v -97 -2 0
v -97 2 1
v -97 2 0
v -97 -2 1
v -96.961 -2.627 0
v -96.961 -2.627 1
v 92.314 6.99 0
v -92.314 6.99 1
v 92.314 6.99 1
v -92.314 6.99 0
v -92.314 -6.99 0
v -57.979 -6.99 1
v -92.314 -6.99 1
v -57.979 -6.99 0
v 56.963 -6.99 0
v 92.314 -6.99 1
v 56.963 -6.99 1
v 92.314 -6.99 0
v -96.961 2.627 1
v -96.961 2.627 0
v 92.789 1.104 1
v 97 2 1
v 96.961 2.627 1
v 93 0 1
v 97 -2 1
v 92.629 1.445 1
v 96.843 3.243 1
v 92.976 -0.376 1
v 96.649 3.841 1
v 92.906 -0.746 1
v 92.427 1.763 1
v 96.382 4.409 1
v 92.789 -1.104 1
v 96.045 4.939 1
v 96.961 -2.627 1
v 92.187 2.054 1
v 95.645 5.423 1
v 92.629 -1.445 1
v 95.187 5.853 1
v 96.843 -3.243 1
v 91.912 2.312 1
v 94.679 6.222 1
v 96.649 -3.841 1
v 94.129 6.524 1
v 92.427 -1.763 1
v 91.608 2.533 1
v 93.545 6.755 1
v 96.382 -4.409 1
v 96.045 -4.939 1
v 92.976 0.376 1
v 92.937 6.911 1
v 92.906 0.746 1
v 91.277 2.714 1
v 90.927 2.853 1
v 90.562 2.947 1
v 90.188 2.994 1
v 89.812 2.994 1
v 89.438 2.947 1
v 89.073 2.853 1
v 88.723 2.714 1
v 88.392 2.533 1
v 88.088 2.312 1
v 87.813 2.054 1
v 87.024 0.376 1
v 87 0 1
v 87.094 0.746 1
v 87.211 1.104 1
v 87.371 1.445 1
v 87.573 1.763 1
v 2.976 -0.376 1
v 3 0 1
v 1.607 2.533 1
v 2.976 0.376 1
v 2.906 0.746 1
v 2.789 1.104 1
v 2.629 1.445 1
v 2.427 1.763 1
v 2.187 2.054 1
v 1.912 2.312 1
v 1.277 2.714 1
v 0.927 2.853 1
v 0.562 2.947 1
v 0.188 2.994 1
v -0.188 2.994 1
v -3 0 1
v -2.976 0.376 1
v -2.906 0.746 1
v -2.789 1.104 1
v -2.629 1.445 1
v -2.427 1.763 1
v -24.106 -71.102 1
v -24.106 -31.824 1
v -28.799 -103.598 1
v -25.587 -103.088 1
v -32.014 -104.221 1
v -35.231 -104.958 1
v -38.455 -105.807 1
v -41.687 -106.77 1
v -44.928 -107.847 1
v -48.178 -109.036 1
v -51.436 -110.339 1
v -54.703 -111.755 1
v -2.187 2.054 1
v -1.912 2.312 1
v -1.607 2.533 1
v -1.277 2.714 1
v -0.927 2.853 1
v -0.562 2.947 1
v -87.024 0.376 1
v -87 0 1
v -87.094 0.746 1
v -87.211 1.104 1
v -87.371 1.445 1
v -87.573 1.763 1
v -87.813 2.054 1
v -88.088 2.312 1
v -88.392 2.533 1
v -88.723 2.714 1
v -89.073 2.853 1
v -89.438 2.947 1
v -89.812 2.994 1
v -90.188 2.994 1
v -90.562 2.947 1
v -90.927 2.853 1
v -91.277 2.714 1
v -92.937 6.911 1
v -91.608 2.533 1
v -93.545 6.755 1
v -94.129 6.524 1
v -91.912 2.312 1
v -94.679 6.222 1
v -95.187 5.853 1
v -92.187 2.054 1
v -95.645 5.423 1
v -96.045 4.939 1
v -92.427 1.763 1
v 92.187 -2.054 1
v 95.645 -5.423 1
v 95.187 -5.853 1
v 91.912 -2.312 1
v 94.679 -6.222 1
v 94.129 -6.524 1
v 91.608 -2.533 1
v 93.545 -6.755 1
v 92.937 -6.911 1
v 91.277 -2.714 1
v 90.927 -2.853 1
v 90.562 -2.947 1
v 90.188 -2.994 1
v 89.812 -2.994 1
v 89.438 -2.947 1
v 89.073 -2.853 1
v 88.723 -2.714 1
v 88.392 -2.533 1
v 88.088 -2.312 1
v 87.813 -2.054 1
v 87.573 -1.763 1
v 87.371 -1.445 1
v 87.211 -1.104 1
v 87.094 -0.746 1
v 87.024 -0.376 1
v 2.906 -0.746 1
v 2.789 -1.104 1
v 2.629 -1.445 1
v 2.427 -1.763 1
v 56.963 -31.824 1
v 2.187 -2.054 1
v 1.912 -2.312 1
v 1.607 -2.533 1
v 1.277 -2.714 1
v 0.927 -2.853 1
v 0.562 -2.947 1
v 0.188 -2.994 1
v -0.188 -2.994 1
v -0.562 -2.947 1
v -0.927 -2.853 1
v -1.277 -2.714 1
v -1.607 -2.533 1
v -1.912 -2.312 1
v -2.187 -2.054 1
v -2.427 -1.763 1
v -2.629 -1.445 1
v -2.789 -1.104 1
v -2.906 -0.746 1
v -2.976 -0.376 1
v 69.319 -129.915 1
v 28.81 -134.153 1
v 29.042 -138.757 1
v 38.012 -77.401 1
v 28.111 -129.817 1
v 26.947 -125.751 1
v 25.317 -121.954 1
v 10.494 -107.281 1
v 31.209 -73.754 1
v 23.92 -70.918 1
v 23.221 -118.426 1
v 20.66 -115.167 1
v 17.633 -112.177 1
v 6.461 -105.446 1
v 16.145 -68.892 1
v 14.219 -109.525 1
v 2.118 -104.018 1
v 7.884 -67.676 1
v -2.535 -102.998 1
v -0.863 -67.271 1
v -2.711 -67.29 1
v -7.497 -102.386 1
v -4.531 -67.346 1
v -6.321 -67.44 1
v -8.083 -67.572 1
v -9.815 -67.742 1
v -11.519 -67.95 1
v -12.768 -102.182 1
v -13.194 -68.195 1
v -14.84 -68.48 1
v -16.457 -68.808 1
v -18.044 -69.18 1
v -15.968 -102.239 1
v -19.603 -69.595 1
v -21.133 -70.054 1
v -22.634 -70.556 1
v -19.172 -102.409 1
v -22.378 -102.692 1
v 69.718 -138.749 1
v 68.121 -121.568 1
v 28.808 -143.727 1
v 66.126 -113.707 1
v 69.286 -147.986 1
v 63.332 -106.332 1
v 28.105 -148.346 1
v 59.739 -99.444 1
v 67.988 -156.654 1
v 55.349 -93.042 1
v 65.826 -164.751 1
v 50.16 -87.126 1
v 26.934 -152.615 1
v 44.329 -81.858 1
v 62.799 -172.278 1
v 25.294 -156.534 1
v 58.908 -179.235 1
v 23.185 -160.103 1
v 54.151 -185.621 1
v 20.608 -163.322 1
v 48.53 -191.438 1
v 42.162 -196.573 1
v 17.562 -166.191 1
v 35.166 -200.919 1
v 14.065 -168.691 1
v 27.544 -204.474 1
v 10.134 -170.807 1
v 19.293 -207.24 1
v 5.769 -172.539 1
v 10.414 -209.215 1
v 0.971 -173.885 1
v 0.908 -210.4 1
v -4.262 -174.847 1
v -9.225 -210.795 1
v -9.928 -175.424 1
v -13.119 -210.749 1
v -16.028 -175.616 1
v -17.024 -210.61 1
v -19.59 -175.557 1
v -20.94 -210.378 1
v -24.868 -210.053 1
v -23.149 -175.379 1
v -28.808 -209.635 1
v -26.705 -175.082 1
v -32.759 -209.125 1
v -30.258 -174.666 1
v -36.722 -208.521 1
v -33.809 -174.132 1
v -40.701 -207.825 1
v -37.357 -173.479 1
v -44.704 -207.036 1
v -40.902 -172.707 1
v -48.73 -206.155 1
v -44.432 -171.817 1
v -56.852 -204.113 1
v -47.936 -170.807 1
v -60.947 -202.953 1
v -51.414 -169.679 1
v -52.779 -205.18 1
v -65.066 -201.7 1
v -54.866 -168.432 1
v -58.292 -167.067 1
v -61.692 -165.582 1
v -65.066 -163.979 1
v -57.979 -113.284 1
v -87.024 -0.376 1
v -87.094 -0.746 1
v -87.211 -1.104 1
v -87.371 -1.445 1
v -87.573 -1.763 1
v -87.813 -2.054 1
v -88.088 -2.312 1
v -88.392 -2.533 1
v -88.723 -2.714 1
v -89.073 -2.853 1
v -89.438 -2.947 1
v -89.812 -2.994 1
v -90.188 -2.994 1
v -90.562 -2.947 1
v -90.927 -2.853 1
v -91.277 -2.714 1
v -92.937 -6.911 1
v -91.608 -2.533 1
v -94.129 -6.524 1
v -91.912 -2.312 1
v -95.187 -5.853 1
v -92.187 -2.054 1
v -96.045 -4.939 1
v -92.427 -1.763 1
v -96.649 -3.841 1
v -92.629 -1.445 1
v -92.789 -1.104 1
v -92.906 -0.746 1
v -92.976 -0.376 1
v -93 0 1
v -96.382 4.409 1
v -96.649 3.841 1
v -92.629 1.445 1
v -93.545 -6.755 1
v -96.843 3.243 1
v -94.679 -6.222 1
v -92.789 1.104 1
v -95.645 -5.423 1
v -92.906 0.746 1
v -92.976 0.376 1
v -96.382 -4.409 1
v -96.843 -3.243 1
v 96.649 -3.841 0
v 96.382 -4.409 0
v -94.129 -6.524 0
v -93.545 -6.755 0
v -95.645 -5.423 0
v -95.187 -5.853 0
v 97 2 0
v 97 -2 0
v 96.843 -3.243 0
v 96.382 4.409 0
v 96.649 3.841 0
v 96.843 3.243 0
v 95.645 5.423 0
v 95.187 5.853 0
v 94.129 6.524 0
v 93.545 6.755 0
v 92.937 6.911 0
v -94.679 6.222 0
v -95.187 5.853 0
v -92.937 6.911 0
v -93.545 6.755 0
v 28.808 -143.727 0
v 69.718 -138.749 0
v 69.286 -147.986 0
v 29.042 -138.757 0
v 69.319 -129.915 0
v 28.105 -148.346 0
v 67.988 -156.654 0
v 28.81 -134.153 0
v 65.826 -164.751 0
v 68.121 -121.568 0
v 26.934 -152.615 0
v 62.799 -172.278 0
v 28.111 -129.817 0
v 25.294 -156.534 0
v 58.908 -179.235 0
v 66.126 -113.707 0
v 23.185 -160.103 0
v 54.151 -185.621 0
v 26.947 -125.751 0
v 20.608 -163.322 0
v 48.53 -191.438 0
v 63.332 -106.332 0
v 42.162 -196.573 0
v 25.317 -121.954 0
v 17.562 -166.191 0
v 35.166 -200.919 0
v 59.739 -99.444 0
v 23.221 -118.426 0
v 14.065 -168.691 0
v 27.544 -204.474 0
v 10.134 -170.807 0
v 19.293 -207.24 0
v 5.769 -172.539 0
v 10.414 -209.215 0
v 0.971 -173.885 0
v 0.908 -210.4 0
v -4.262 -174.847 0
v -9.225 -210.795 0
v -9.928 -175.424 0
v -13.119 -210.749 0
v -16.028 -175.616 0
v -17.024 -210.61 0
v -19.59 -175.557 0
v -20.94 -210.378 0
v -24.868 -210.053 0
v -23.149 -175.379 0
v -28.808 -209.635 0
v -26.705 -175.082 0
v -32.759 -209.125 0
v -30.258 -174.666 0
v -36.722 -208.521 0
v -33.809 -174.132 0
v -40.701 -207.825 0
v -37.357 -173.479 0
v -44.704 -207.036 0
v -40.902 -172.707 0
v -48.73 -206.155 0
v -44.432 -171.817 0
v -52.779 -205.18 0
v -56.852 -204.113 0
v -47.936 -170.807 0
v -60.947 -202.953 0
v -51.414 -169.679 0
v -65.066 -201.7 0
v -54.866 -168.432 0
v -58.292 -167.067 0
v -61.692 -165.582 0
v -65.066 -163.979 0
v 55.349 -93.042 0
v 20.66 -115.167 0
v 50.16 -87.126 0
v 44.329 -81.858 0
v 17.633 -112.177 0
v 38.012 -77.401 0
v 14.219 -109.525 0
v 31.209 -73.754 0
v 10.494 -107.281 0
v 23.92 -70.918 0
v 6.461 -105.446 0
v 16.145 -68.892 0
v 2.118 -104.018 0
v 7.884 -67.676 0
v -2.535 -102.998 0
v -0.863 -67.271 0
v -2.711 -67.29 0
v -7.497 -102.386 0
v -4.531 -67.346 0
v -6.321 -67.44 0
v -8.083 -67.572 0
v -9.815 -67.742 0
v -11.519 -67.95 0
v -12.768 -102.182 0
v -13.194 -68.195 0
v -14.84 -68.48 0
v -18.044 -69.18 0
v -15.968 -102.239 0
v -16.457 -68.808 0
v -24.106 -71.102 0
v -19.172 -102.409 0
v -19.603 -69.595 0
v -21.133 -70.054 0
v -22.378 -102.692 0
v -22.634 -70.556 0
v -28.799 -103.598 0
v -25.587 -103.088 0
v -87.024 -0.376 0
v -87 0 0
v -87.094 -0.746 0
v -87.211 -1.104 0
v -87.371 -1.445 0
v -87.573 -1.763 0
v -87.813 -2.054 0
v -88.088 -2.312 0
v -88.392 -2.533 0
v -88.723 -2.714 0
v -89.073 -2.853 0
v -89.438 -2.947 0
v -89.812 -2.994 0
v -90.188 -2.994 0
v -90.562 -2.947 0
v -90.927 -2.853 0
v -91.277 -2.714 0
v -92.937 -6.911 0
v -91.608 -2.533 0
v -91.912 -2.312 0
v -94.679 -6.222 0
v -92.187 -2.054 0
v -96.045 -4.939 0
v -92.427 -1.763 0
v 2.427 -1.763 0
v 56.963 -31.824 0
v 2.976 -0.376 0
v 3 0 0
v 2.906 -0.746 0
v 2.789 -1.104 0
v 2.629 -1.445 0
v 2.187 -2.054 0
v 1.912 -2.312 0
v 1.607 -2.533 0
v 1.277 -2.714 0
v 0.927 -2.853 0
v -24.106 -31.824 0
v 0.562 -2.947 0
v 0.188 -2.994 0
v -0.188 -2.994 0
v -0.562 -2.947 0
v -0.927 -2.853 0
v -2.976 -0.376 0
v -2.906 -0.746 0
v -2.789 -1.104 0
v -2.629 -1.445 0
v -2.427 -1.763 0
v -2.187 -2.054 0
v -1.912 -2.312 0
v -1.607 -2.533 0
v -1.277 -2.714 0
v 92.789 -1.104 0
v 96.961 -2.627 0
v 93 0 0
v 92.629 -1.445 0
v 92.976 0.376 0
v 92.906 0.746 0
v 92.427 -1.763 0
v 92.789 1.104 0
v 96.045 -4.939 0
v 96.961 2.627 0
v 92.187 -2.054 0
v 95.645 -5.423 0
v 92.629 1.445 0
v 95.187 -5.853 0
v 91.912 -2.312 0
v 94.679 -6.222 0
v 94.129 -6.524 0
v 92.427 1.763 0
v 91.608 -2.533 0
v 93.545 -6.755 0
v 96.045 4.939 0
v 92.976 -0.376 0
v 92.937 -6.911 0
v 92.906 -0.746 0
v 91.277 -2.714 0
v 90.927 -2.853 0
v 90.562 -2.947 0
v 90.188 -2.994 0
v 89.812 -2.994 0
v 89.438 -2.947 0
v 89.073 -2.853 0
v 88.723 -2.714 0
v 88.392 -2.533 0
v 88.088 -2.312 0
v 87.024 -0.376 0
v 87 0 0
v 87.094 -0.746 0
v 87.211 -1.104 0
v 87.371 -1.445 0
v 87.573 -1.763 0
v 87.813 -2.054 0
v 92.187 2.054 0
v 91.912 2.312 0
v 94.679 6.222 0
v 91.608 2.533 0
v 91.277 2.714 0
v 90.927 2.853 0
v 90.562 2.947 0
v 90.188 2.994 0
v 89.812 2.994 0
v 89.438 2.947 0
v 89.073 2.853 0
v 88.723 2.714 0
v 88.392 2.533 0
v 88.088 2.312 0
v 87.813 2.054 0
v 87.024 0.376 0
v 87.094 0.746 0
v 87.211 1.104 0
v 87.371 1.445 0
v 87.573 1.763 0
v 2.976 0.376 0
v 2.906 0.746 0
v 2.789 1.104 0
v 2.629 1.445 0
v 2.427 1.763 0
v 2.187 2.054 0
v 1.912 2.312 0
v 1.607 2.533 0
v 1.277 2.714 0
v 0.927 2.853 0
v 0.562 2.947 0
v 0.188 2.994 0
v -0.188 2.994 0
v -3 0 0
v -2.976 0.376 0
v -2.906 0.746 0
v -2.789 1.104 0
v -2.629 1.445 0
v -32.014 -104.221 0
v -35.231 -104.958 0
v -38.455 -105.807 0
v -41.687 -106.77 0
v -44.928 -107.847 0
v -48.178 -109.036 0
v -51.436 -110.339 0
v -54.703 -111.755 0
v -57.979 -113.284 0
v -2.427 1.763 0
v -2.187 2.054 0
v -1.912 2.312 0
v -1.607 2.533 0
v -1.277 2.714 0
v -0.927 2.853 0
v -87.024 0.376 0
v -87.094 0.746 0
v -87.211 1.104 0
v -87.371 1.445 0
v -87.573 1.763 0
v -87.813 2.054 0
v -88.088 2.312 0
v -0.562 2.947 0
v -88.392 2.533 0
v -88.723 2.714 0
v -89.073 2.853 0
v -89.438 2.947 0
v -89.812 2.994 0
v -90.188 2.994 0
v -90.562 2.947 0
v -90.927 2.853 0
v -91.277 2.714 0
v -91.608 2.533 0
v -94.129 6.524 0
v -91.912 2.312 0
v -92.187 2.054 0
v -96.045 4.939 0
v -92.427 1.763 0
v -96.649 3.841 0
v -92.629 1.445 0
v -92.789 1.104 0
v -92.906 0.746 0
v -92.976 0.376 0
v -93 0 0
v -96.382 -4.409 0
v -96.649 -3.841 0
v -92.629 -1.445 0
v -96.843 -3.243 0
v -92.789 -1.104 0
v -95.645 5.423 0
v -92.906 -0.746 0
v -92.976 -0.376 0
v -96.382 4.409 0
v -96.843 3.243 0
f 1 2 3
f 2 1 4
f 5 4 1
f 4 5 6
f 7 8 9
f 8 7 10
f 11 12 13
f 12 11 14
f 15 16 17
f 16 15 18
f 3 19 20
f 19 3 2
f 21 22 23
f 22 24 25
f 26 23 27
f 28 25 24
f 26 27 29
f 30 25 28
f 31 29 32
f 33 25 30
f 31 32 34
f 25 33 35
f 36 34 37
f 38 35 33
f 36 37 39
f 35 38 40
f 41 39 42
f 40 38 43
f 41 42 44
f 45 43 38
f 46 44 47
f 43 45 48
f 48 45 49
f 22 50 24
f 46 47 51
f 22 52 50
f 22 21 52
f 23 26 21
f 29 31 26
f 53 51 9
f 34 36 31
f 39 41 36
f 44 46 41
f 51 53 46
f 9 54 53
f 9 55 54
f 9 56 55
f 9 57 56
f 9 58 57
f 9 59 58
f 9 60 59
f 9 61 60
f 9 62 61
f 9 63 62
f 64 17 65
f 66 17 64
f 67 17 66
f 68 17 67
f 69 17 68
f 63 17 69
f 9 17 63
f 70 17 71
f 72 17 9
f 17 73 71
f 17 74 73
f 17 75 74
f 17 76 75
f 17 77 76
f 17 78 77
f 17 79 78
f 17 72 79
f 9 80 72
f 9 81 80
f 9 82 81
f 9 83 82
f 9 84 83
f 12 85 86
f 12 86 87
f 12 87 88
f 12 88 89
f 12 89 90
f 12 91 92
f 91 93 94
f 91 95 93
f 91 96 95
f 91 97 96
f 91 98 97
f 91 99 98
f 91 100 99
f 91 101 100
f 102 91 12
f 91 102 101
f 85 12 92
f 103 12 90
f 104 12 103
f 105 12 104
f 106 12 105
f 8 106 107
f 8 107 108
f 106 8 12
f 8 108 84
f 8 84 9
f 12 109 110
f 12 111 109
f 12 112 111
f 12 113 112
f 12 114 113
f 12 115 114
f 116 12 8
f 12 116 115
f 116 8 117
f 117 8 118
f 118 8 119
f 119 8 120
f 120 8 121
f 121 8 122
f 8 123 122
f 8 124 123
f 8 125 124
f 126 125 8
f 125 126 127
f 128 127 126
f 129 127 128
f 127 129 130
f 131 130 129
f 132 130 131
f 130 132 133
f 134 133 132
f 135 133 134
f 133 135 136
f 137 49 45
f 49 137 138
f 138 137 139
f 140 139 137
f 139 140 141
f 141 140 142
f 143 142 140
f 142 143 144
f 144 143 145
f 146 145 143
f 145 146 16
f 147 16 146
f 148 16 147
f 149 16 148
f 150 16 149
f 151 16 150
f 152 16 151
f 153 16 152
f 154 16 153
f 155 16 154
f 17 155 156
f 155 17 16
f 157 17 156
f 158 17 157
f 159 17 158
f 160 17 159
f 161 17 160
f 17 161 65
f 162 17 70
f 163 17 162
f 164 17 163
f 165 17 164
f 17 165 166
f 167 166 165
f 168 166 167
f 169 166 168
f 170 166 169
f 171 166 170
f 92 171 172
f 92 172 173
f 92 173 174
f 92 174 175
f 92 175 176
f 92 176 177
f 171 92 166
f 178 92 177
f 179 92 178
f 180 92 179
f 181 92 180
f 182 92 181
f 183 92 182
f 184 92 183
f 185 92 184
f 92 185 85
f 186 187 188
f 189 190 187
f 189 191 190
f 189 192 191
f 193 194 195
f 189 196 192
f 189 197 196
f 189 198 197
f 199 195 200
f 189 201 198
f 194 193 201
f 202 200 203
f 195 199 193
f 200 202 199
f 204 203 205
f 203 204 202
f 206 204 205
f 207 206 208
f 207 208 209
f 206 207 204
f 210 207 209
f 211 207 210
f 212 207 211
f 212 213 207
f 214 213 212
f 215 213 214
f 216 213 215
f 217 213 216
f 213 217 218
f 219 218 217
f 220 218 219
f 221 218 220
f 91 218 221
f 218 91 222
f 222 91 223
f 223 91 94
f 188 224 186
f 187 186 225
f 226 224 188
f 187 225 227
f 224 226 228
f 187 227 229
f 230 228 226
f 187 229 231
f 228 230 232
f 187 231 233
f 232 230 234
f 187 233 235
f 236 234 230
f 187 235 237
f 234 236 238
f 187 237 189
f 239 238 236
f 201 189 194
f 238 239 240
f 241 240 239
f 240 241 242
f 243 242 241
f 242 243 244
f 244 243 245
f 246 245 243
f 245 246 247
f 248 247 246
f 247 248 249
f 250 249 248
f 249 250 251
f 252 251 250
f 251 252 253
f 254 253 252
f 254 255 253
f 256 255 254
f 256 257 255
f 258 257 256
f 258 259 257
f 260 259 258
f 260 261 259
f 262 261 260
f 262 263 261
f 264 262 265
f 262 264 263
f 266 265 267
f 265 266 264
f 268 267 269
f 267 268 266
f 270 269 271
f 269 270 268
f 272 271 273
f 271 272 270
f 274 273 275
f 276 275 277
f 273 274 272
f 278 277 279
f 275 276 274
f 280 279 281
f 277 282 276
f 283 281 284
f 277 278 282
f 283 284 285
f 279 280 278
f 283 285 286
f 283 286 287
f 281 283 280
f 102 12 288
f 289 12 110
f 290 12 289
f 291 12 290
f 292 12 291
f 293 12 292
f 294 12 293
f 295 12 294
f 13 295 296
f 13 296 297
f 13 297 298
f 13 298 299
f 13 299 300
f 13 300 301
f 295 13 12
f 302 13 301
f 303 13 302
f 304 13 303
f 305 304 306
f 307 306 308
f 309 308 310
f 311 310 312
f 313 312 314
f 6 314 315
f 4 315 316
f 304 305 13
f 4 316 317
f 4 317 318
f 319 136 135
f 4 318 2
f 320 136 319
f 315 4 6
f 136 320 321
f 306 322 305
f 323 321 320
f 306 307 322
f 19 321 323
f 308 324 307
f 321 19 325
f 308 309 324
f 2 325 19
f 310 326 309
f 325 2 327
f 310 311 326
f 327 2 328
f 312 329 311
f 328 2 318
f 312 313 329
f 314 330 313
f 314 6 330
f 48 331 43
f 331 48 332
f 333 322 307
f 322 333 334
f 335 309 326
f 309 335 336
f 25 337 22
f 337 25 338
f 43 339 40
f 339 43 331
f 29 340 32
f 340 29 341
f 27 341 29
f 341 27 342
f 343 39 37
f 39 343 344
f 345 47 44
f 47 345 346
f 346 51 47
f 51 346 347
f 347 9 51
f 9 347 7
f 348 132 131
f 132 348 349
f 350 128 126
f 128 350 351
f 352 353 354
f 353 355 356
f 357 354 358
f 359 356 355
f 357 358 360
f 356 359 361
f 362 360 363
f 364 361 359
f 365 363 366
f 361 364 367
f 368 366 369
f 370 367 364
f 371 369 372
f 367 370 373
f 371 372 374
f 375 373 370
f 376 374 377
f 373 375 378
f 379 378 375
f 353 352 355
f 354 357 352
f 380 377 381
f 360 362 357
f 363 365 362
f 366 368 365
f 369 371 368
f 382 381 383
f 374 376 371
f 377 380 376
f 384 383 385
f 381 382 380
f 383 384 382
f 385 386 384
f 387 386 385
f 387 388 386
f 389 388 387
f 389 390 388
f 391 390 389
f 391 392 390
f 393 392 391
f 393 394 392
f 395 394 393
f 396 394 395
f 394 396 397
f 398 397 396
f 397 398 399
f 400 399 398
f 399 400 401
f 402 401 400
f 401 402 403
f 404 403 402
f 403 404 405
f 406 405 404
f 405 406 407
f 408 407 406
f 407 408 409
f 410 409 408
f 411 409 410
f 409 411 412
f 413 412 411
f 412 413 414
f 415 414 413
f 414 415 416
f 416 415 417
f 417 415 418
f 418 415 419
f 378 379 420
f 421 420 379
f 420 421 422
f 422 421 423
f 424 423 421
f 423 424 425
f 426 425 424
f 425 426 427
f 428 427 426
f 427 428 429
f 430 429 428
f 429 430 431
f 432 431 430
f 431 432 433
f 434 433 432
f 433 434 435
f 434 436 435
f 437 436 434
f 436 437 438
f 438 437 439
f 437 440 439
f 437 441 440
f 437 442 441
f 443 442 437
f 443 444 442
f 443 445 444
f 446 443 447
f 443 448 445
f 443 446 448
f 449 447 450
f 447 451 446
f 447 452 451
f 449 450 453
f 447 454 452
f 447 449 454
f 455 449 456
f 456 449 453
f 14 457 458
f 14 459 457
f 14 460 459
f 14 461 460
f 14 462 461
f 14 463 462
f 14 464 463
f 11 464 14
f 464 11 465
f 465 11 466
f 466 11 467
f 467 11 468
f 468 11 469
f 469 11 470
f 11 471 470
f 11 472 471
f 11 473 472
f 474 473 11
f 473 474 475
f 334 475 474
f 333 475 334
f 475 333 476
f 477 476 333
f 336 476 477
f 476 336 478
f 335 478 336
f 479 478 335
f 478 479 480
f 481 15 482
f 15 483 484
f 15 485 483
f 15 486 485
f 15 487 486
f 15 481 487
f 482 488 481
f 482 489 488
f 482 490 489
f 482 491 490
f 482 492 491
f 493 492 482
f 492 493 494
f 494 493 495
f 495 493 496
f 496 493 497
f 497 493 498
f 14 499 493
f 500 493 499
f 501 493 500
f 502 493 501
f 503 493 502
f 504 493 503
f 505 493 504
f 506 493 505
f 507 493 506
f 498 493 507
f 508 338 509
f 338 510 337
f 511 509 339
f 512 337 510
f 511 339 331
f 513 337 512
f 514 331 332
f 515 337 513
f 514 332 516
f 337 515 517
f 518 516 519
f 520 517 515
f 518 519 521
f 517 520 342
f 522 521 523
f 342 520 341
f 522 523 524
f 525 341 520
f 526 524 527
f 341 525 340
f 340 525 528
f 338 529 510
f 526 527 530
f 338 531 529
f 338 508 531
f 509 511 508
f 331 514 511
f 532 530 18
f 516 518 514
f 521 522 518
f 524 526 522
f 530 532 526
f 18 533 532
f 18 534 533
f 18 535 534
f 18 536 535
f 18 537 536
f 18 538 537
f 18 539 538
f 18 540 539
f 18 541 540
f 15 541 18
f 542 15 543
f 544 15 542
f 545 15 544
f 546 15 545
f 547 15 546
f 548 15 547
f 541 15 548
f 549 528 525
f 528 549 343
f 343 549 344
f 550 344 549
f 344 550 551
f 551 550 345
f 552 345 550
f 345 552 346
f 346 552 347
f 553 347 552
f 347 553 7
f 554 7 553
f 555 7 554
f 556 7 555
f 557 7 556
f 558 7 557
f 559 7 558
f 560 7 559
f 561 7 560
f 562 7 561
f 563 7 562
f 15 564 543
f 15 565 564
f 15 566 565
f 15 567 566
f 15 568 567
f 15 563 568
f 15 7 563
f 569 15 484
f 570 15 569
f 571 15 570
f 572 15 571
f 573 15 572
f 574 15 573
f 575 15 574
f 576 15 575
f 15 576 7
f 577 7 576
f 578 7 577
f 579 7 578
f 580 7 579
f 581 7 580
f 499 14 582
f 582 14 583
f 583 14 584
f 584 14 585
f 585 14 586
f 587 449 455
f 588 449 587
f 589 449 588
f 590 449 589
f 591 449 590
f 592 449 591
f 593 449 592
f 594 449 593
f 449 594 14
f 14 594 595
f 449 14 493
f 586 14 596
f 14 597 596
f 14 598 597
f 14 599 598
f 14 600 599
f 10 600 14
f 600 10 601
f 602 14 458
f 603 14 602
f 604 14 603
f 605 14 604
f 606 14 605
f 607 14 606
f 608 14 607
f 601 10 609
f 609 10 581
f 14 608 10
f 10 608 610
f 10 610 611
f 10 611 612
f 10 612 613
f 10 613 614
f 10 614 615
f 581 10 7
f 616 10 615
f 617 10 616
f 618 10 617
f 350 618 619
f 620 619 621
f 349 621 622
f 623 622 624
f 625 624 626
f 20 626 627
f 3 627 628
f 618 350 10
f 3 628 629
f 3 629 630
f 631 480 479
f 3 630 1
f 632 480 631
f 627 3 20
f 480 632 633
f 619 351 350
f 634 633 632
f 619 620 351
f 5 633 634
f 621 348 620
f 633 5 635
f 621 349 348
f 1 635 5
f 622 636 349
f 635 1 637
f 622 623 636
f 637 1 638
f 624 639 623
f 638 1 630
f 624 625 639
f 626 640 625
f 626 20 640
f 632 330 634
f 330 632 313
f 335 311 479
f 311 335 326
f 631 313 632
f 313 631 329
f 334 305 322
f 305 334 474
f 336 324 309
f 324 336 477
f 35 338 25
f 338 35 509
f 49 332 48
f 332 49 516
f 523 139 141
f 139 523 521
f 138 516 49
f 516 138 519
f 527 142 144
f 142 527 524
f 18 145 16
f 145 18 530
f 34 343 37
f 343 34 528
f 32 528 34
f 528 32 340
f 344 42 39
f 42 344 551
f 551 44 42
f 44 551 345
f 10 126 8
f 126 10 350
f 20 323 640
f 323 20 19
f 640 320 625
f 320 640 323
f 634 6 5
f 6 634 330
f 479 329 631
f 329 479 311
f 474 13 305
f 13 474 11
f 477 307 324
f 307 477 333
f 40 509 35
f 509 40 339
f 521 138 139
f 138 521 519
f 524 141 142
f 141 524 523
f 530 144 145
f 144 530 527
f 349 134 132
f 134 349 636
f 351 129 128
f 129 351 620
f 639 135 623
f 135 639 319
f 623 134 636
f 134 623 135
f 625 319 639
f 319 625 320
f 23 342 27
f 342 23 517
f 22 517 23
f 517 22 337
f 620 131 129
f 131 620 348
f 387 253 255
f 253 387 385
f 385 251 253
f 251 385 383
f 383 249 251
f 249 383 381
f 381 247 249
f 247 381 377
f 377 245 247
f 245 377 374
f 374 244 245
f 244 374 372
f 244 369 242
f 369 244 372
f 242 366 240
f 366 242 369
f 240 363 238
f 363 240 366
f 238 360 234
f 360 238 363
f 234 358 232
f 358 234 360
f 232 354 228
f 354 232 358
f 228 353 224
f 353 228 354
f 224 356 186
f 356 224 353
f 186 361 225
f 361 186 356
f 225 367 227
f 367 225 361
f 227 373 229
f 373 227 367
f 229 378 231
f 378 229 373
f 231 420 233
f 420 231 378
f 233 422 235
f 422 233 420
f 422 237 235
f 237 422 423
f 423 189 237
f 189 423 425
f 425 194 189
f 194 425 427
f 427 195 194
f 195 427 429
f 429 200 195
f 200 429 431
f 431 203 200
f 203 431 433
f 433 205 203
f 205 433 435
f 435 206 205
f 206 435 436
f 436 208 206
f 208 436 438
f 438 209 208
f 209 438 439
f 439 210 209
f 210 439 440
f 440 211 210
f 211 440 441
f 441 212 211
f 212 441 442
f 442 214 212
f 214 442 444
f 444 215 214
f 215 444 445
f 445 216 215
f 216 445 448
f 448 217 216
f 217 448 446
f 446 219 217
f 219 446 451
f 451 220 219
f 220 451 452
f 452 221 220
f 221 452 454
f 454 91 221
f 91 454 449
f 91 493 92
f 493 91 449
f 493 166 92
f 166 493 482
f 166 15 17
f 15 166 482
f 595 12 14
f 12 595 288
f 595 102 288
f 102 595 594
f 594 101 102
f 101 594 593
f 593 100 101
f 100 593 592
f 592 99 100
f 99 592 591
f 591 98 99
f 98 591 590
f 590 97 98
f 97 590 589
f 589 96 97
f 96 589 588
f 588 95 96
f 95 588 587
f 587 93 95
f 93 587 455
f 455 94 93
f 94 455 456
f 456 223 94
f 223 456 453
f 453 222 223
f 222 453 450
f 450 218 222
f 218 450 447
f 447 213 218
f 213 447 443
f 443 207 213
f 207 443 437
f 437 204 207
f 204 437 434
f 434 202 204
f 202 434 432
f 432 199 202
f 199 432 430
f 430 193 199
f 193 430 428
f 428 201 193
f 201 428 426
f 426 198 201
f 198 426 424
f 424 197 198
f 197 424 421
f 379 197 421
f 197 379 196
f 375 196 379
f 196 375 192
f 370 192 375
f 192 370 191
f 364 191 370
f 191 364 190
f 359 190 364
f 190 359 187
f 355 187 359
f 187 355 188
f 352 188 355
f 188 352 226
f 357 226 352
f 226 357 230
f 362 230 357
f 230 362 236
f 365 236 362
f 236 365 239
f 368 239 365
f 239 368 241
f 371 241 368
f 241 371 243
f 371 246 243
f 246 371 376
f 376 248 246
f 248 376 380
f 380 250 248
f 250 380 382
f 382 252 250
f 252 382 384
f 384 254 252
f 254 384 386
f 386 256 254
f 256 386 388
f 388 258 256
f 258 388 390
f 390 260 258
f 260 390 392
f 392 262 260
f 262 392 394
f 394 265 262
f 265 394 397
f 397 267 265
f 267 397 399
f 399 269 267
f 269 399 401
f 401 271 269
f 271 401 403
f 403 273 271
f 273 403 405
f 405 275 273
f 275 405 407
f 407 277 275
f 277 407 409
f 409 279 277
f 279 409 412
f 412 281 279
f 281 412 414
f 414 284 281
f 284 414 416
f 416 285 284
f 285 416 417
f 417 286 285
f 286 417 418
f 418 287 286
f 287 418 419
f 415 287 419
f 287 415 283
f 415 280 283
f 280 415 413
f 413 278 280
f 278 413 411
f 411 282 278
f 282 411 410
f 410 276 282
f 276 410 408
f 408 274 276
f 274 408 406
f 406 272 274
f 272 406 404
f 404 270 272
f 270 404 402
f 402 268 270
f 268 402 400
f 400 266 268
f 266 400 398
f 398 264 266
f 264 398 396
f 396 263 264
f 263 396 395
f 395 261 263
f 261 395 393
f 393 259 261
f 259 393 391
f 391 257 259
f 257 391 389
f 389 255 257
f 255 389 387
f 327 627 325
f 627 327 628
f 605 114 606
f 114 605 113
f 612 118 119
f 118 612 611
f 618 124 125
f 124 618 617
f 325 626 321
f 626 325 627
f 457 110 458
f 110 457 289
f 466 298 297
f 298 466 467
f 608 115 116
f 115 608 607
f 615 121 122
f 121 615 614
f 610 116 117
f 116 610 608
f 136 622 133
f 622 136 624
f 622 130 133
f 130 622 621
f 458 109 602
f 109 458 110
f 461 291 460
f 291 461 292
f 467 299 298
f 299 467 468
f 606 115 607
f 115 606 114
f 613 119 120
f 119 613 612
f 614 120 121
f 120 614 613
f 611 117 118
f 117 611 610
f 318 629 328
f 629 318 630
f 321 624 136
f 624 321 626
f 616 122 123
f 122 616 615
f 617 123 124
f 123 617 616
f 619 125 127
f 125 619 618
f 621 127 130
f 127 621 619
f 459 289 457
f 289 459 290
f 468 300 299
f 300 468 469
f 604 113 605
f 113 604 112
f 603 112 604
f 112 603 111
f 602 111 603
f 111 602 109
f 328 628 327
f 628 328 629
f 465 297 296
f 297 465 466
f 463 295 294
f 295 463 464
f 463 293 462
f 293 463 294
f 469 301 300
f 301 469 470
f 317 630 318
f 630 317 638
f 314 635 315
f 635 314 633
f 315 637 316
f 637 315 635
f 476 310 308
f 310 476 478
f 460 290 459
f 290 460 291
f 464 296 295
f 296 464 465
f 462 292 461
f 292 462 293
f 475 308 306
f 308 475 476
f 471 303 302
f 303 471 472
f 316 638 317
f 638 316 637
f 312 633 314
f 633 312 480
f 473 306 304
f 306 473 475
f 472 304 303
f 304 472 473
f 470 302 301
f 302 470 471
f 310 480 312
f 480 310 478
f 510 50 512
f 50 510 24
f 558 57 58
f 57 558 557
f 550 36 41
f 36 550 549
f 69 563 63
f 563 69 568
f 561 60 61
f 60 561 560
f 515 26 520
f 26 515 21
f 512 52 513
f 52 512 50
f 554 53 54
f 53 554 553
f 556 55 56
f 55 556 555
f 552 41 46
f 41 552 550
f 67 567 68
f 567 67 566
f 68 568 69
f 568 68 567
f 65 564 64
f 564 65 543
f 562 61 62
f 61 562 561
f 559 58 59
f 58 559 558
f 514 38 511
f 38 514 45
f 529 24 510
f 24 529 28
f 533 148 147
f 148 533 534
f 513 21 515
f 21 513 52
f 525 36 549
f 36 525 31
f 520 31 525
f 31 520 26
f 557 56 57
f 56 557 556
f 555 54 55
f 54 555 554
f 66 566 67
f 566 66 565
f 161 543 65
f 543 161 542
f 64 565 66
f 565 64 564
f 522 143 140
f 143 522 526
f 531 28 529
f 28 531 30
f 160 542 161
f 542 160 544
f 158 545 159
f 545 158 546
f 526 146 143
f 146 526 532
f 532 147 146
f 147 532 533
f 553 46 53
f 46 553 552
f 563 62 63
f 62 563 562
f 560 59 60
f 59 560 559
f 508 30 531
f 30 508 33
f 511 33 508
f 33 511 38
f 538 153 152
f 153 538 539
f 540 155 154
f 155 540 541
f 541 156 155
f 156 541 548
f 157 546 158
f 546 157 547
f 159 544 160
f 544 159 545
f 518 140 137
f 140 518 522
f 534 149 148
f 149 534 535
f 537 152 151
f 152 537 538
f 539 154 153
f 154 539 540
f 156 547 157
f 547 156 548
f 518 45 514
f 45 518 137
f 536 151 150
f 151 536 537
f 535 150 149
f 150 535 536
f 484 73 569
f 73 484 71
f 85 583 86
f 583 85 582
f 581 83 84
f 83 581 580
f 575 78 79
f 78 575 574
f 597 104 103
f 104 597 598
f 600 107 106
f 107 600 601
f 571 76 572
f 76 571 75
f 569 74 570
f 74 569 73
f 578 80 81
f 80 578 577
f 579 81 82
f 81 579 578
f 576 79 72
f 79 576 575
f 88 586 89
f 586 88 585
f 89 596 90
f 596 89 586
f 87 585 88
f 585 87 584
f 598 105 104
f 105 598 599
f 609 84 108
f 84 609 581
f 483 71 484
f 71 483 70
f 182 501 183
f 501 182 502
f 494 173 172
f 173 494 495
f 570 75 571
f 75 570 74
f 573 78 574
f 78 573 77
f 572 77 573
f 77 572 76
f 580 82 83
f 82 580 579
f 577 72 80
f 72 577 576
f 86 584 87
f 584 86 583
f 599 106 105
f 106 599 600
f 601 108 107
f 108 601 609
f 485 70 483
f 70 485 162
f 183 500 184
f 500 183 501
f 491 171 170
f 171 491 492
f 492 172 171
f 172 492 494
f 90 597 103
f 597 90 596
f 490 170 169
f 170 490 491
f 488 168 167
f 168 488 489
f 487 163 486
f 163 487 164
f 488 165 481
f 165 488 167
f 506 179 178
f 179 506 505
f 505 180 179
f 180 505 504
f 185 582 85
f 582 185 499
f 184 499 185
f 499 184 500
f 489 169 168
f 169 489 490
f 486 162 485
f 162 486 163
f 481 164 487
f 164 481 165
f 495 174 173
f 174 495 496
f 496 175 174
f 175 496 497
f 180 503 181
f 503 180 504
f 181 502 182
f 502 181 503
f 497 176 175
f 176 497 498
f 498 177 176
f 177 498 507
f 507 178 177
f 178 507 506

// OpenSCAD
$fn = 50;


difference() {
	union() {
		translate(v = [0, 0, 0]) {
			rotate(a = [0, 0, 0]) {
				hull() {
					translate(v = [-92.0000000000, 2.0000000000, 0]) {
						rotate(a = [0, 0, 0]) {
							translate(v = [0, 0, 0]) {
								rotate(a = [0, 0, 0]) {
									cylinder(h = 1, r = 5);
								}
							}
						}
					}
					translate(v = [92.0000000000, 2.0000000000, 0]) {
						rotate(a = [0, 0, 0]) {
							translate(v = [0, 0, 0]) {
								rotate(a = [0, 0, 0]) {
									cylinder(h = 1, r = 5);
								}
							}
						}
					}
					translate(v = [-92.0000000000, -2.0000000000, 0]) {
						rotate(a = [0, 0, 0]) {
							translate(v = [0, 0, 0]) {
								rotate(a = [0, 0, 0]) {
									cylinder(h = 1, r = 5);
								}
							}
						}
					}
					translate(v = [92.0000000000, -2.0000000000, 0]) {
						rotate(a = [0, 0, 0]) {
							translate(v = [0, 0, 0]) {
								rotate(a = [0, 0, 0]) {
									cylinder(h = 1, r = 5);
								}
							}
						}
					}
				}
			}
		}
		translate(v = [0, 0, 0]) {
			rotate(a = [0, 0, 0]) {
				linear_extrude(height = 1) {
					text(font = "DejaVu Sans Mono:style=Bold", halign = "center", size = 209.0000000000, text = "5", valign = "top");
				}
			}
		}
	}
	union() {
		translate(v = [-90.0000000000, 0.0000000000, -125.0000000000]) {
			rotate(a = [0, 0, 0]) {
				cylinder(h = 250, r = 3.0000000000);
			}
		}
		translate(v = [90.0000000000, 0.0000000000, -125.0000000000]) {
			rotate(a = [0, 0, 0]) {
				cylinder(h = 250, r = 3.0000000000);
			}
		}
		translate(v = [90.0000000000, 0.0000000000, -125.0000000000]) {
			rotate(a = [0, 0, 0]) {
				cylinder(h = 250, r = 3.0000000000);
			}
		}
		translate(v = [0, 0, -125.0000000000]) {
			rotate(a = [0, 0, 0]) {
				cylinder(h = 250, r = 3.0000000000);
			}
		}
	}
}
